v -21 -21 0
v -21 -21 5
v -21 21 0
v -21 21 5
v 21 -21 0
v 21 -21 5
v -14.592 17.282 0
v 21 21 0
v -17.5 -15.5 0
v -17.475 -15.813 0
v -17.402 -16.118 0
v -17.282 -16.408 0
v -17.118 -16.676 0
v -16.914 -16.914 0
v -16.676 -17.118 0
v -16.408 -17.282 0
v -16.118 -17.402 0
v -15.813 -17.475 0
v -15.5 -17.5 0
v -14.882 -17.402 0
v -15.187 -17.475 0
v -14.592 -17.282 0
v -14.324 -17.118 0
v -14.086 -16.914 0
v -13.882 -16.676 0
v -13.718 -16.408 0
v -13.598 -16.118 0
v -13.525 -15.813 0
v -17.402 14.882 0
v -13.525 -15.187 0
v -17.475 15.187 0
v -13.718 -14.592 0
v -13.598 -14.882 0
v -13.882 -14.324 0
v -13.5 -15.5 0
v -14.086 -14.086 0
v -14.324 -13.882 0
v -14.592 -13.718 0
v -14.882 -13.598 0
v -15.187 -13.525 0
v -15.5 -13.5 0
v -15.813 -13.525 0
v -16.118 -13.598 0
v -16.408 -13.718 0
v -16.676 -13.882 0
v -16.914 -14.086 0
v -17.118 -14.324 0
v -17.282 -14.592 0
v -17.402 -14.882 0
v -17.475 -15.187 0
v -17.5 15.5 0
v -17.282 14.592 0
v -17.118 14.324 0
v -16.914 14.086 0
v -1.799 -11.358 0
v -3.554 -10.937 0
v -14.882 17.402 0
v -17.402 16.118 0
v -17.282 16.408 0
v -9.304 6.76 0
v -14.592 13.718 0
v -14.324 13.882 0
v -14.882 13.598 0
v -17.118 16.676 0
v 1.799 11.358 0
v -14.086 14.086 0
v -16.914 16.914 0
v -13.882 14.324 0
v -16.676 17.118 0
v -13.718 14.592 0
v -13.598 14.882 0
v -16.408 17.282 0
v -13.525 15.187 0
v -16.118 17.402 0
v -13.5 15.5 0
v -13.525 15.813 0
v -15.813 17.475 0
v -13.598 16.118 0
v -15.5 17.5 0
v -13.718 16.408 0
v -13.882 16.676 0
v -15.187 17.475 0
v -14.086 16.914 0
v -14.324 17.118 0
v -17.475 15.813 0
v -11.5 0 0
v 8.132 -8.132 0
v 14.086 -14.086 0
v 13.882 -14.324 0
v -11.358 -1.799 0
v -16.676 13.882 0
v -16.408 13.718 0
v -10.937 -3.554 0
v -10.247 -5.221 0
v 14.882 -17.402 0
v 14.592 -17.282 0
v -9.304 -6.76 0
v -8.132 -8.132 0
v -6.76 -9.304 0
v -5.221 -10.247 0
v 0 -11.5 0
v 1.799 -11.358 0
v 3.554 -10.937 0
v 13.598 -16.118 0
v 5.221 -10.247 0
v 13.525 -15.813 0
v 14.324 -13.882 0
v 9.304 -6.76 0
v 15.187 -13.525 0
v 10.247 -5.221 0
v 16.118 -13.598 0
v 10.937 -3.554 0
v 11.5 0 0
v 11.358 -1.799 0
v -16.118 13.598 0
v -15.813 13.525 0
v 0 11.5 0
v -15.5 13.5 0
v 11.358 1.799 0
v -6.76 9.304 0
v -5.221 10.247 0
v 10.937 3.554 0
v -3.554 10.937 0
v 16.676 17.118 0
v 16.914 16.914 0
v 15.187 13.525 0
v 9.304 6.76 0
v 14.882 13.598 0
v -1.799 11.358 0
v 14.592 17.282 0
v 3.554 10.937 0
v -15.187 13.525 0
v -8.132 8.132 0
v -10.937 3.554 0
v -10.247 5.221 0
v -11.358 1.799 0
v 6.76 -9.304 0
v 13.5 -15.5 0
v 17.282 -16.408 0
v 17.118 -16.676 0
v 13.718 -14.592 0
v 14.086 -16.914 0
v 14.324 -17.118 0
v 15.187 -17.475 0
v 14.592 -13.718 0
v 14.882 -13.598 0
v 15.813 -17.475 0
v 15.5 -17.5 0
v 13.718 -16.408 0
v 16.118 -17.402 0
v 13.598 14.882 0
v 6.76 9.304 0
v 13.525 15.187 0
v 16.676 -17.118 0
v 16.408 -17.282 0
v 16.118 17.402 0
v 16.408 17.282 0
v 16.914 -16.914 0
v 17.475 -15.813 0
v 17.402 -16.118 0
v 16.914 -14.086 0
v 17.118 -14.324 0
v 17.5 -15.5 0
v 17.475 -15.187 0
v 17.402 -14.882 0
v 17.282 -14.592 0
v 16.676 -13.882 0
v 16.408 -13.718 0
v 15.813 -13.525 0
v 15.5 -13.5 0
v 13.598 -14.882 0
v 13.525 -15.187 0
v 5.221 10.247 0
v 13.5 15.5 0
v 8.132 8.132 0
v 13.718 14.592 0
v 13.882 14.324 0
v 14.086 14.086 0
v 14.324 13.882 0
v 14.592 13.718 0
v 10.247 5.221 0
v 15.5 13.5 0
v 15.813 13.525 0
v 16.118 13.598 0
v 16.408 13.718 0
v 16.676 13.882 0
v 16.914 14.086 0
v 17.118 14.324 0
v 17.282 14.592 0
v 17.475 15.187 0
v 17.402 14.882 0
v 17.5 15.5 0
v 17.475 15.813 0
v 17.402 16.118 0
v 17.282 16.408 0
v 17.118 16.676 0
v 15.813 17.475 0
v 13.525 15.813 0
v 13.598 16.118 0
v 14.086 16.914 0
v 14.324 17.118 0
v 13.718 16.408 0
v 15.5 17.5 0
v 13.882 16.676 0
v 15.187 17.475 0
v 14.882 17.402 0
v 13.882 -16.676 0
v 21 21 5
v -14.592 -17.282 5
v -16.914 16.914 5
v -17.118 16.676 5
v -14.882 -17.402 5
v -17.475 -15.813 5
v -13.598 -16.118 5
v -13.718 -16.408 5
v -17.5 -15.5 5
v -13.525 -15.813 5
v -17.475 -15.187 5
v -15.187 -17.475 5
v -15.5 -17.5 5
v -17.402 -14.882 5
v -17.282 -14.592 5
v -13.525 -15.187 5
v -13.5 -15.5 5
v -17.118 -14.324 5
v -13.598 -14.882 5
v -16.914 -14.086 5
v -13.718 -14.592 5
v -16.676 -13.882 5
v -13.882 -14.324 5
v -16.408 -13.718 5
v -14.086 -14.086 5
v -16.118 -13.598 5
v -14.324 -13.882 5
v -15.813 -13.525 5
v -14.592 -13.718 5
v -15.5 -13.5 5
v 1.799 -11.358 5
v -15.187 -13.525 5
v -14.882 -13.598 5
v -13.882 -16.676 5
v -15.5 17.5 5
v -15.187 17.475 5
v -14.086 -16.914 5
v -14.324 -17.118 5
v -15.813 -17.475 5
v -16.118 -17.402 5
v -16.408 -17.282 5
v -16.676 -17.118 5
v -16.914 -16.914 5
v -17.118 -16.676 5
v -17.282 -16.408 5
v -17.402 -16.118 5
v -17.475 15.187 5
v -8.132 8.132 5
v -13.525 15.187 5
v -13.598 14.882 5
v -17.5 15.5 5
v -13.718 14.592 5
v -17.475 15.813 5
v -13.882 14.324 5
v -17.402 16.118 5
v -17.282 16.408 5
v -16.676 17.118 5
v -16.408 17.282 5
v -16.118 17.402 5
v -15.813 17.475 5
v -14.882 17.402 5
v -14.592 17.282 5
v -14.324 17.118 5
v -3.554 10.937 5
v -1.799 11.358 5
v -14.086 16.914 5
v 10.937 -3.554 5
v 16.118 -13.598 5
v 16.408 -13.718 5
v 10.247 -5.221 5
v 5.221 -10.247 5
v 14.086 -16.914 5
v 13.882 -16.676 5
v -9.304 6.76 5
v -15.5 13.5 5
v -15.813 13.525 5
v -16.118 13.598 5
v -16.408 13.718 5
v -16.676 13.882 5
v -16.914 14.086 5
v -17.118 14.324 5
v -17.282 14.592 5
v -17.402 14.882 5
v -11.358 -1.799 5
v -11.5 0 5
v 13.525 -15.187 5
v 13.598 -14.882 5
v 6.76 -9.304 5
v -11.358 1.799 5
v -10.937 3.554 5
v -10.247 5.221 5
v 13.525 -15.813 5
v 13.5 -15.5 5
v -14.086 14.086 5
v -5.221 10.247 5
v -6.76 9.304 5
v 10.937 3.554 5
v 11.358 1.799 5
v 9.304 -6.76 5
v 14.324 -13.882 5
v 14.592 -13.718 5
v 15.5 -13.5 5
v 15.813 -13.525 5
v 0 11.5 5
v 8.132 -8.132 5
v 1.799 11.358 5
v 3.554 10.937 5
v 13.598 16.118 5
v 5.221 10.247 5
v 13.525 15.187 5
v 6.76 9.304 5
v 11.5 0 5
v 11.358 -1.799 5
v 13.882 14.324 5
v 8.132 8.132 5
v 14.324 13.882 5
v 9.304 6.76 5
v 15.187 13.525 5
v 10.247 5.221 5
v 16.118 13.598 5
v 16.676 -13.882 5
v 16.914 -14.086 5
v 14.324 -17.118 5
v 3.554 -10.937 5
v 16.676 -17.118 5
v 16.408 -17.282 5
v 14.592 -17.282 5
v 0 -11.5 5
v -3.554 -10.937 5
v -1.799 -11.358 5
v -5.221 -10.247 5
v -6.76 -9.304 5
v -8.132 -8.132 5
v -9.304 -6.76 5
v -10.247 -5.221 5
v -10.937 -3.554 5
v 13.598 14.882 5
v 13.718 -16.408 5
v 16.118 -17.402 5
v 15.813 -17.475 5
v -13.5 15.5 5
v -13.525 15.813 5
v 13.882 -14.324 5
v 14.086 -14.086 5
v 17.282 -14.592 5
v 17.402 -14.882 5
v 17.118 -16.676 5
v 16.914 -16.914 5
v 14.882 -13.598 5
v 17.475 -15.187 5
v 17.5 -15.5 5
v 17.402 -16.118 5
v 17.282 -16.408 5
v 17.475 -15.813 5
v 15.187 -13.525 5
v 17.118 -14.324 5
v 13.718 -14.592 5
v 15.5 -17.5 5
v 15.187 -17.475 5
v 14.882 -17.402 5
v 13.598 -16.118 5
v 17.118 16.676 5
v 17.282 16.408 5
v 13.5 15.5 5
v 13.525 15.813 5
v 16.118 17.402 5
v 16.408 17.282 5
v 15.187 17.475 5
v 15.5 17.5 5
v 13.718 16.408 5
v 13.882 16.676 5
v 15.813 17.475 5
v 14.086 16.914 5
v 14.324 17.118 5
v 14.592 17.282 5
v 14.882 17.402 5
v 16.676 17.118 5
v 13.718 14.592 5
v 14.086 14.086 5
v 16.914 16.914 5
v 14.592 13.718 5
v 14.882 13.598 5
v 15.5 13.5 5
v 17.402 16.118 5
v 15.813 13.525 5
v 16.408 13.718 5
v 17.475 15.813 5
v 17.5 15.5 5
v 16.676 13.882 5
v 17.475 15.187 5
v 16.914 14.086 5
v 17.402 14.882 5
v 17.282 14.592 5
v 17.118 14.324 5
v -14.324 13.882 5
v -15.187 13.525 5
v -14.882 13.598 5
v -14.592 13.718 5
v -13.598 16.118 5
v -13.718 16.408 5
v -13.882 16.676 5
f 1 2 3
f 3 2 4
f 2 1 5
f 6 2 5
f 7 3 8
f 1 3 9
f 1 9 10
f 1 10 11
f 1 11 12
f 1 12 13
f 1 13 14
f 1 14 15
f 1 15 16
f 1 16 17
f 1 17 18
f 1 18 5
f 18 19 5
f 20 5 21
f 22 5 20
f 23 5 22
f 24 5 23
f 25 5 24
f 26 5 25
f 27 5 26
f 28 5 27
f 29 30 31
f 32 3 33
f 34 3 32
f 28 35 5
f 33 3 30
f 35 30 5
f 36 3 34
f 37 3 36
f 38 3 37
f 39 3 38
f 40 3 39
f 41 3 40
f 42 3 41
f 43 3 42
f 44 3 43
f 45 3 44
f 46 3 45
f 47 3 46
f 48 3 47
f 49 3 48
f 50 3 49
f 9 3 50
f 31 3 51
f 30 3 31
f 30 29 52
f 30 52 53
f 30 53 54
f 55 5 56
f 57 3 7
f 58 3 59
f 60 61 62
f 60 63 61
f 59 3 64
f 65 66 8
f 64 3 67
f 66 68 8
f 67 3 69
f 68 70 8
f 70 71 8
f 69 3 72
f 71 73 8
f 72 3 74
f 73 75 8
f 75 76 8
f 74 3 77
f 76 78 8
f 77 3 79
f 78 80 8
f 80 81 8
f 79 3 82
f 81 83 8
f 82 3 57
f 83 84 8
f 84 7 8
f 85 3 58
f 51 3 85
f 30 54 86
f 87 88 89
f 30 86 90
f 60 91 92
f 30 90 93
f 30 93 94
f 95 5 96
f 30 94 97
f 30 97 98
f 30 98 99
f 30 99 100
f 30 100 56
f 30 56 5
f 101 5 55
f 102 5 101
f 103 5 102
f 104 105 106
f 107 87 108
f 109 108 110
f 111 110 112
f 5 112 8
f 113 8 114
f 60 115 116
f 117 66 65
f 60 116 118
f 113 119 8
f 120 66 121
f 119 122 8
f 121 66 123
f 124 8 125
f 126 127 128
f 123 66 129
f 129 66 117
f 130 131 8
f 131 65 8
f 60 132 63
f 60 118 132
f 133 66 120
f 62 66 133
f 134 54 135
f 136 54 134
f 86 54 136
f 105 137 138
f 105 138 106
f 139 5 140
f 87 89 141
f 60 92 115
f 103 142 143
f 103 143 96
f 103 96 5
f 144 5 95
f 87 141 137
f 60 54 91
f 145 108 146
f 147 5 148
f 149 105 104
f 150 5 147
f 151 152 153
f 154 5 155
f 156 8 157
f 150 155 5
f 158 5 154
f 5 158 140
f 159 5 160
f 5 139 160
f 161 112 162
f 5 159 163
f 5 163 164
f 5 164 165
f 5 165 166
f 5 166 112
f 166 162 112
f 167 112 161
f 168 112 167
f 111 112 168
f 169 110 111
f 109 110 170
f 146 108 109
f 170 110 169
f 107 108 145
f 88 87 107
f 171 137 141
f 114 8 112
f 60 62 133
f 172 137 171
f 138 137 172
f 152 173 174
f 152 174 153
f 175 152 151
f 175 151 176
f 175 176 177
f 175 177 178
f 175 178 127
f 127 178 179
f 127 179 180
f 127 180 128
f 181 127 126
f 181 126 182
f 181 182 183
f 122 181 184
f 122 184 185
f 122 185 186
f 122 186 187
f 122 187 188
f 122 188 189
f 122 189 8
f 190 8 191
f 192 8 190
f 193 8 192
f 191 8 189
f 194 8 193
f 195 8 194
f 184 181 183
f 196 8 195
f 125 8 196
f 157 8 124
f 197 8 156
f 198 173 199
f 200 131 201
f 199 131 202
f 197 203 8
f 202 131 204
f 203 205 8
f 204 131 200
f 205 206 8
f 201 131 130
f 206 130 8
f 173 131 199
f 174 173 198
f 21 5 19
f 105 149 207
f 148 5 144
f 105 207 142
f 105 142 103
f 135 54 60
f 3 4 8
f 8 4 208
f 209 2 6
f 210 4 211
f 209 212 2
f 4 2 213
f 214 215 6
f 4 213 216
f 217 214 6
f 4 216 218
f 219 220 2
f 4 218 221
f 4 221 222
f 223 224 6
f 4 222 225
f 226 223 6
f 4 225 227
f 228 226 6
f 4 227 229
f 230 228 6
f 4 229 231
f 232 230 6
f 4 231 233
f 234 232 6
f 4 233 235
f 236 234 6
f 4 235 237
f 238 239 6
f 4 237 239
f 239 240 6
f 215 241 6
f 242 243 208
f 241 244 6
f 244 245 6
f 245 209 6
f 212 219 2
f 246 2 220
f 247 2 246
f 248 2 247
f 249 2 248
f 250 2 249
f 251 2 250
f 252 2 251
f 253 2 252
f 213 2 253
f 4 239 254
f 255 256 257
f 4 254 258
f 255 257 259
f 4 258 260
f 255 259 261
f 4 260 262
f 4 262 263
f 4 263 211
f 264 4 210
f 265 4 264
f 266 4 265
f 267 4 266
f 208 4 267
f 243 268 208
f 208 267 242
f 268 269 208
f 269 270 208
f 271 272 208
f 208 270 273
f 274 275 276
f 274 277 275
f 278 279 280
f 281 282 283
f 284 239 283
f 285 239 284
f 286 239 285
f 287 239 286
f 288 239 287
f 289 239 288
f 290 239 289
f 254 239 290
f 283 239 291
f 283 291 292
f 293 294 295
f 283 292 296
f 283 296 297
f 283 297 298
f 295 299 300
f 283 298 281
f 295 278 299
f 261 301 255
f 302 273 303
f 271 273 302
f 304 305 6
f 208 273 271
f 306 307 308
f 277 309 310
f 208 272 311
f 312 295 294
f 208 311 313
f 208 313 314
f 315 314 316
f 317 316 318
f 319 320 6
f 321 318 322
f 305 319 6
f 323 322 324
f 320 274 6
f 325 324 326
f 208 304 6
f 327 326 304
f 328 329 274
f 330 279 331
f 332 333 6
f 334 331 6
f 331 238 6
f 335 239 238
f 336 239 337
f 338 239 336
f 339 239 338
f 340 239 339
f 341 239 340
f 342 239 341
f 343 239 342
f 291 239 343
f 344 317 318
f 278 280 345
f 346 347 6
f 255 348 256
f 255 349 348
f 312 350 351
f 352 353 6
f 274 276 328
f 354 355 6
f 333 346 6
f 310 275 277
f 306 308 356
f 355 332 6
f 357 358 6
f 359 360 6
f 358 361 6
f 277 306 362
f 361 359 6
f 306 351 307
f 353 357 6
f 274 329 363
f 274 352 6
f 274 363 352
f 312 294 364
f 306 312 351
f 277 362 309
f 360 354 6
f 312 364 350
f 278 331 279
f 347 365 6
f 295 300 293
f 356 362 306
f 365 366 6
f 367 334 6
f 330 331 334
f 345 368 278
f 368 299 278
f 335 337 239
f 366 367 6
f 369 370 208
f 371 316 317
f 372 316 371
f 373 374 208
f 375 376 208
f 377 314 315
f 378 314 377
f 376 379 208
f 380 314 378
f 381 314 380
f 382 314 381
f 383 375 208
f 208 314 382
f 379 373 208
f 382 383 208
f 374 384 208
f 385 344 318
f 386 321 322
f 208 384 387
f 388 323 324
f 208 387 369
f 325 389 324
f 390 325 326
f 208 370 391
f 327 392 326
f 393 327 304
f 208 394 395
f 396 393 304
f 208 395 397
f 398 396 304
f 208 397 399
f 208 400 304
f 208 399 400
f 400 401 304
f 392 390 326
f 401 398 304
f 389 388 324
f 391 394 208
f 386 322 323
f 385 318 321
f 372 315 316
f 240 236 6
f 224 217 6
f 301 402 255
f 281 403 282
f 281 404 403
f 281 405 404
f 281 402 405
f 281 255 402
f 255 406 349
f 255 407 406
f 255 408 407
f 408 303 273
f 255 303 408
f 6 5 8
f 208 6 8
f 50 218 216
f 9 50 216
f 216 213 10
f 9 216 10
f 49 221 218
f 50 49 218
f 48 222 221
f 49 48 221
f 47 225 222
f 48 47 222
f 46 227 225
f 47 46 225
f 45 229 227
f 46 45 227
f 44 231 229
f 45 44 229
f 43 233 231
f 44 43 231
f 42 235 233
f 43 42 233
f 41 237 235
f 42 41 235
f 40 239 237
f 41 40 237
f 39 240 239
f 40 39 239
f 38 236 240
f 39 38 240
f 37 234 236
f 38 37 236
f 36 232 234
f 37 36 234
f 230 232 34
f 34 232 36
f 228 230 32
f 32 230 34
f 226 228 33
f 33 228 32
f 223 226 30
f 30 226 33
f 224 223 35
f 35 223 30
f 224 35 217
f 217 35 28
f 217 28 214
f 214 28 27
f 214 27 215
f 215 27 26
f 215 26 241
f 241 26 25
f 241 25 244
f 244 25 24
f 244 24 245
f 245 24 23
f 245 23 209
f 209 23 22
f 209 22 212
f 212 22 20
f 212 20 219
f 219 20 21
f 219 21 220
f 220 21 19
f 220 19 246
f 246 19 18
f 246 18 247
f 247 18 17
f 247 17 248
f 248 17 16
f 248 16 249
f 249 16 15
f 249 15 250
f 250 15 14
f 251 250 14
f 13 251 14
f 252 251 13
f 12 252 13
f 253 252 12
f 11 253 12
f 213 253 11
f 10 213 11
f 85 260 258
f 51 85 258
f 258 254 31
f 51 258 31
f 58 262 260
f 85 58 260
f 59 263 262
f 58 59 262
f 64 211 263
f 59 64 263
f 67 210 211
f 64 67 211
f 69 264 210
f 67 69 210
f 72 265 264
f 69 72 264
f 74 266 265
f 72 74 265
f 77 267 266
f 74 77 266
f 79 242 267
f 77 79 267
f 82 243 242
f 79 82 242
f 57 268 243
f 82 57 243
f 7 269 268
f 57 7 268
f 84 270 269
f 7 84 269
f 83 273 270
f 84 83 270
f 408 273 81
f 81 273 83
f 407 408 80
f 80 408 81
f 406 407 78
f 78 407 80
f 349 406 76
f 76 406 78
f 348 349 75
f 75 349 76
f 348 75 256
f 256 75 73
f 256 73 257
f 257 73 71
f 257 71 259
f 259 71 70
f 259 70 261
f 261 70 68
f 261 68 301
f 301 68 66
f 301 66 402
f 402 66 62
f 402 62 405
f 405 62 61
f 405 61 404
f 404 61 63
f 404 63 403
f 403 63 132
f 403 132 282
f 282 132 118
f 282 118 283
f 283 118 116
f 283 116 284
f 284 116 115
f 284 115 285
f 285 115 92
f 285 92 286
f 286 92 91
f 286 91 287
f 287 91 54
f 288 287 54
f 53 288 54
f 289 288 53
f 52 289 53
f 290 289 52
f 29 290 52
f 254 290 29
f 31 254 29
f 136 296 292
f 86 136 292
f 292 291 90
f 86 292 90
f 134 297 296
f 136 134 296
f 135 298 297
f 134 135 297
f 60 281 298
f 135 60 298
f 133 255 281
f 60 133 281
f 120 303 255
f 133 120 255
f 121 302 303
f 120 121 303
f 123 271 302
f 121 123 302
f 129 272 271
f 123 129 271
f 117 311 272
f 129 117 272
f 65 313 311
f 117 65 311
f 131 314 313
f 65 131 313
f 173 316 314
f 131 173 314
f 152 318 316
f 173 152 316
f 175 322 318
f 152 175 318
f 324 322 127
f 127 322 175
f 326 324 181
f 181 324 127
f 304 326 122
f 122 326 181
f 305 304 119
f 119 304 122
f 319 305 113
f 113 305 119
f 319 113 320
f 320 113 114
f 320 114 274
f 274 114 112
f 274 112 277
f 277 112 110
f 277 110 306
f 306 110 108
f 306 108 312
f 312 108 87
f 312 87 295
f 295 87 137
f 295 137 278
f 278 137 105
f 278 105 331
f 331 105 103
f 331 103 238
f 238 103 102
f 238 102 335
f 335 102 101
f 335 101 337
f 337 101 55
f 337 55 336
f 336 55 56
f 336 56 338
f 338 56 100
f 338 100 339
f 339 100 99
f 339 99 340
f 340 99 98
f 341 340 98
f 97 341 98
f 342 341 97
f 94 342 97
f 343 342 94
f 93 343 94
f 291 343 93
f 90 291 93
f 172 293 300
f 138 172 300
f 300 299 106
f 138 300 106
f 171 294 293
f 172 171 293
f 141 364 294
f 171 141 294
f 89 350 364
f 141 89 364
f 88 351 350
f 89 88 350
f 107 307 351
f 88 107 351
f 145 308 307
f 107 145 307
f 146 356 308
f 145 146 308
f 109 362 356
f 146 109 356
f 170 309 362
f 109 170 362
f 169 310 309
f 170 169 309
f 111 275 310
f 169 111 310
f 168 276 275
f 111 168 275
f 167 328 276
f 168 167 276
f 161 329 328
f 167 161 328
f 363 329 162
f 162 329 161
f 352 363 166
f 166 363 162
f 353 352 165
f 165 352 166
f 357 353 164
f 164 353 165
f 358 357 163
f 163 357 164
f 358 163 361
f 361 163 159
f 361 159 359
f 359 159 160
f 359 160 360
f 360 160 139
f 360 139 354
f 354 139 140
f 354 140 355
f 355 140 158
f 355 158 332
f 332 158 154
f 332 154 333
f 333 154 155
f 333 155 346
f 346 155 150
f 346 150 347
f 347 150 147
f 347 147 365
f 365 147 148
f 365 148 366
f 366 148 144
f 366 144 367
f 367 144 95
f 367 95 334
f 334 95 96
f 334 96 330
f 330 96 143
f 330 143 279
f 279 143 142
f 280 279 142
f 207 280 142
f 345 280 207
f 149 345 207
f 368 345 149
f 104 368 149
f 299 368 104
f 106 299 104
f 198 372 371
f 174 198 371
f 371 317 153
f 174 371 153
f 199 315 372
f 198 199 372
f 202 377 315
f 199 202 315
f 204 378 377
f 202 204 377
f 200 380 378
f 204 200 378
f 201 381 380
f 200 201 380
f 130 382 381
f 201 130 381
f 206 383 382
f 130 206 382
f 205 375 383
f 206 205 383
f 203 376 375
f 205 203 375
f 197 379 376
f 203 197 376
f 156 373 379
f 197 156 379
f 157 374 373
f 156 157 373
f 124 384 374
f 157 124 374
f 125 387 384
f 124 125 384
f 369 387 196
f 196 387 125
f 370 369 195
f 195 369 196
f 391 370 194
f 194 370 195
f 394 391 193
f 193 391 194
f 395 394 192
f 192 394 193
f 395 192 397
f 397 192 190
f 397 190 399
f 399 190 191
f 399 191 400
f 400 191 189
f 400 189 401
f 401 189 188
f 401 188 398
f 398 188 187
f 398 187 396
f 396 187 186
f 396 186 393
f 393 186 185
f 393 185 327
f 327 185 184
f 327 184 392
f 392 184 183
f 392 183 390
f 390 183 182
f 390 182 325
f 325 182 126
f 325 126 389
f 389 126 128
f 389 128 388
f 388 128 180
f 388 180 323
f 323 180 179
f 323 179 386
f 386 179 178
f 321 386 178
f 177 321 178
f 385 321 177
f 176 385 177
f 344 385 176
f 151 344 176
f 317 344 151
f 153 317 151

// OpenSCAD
$fn=40;


difference(){
	translate([-21,-21,0])
	cube([42,42,5]);
	translate([0,0,-1])
	cylinder(r=11.5,h=20);
	
	translate([-15.5,-15.5,-1])
	cylinder(r=2,h=50);
	translate([15.5,-15.5,-1])
	cylinder(r=2,h=50);
	translate([-15.5,15.5,-1])
	cylinder(r=2,h=50);
	translate([15.5,15.5,-1])
	cylinder(r=2,h=50);

}
